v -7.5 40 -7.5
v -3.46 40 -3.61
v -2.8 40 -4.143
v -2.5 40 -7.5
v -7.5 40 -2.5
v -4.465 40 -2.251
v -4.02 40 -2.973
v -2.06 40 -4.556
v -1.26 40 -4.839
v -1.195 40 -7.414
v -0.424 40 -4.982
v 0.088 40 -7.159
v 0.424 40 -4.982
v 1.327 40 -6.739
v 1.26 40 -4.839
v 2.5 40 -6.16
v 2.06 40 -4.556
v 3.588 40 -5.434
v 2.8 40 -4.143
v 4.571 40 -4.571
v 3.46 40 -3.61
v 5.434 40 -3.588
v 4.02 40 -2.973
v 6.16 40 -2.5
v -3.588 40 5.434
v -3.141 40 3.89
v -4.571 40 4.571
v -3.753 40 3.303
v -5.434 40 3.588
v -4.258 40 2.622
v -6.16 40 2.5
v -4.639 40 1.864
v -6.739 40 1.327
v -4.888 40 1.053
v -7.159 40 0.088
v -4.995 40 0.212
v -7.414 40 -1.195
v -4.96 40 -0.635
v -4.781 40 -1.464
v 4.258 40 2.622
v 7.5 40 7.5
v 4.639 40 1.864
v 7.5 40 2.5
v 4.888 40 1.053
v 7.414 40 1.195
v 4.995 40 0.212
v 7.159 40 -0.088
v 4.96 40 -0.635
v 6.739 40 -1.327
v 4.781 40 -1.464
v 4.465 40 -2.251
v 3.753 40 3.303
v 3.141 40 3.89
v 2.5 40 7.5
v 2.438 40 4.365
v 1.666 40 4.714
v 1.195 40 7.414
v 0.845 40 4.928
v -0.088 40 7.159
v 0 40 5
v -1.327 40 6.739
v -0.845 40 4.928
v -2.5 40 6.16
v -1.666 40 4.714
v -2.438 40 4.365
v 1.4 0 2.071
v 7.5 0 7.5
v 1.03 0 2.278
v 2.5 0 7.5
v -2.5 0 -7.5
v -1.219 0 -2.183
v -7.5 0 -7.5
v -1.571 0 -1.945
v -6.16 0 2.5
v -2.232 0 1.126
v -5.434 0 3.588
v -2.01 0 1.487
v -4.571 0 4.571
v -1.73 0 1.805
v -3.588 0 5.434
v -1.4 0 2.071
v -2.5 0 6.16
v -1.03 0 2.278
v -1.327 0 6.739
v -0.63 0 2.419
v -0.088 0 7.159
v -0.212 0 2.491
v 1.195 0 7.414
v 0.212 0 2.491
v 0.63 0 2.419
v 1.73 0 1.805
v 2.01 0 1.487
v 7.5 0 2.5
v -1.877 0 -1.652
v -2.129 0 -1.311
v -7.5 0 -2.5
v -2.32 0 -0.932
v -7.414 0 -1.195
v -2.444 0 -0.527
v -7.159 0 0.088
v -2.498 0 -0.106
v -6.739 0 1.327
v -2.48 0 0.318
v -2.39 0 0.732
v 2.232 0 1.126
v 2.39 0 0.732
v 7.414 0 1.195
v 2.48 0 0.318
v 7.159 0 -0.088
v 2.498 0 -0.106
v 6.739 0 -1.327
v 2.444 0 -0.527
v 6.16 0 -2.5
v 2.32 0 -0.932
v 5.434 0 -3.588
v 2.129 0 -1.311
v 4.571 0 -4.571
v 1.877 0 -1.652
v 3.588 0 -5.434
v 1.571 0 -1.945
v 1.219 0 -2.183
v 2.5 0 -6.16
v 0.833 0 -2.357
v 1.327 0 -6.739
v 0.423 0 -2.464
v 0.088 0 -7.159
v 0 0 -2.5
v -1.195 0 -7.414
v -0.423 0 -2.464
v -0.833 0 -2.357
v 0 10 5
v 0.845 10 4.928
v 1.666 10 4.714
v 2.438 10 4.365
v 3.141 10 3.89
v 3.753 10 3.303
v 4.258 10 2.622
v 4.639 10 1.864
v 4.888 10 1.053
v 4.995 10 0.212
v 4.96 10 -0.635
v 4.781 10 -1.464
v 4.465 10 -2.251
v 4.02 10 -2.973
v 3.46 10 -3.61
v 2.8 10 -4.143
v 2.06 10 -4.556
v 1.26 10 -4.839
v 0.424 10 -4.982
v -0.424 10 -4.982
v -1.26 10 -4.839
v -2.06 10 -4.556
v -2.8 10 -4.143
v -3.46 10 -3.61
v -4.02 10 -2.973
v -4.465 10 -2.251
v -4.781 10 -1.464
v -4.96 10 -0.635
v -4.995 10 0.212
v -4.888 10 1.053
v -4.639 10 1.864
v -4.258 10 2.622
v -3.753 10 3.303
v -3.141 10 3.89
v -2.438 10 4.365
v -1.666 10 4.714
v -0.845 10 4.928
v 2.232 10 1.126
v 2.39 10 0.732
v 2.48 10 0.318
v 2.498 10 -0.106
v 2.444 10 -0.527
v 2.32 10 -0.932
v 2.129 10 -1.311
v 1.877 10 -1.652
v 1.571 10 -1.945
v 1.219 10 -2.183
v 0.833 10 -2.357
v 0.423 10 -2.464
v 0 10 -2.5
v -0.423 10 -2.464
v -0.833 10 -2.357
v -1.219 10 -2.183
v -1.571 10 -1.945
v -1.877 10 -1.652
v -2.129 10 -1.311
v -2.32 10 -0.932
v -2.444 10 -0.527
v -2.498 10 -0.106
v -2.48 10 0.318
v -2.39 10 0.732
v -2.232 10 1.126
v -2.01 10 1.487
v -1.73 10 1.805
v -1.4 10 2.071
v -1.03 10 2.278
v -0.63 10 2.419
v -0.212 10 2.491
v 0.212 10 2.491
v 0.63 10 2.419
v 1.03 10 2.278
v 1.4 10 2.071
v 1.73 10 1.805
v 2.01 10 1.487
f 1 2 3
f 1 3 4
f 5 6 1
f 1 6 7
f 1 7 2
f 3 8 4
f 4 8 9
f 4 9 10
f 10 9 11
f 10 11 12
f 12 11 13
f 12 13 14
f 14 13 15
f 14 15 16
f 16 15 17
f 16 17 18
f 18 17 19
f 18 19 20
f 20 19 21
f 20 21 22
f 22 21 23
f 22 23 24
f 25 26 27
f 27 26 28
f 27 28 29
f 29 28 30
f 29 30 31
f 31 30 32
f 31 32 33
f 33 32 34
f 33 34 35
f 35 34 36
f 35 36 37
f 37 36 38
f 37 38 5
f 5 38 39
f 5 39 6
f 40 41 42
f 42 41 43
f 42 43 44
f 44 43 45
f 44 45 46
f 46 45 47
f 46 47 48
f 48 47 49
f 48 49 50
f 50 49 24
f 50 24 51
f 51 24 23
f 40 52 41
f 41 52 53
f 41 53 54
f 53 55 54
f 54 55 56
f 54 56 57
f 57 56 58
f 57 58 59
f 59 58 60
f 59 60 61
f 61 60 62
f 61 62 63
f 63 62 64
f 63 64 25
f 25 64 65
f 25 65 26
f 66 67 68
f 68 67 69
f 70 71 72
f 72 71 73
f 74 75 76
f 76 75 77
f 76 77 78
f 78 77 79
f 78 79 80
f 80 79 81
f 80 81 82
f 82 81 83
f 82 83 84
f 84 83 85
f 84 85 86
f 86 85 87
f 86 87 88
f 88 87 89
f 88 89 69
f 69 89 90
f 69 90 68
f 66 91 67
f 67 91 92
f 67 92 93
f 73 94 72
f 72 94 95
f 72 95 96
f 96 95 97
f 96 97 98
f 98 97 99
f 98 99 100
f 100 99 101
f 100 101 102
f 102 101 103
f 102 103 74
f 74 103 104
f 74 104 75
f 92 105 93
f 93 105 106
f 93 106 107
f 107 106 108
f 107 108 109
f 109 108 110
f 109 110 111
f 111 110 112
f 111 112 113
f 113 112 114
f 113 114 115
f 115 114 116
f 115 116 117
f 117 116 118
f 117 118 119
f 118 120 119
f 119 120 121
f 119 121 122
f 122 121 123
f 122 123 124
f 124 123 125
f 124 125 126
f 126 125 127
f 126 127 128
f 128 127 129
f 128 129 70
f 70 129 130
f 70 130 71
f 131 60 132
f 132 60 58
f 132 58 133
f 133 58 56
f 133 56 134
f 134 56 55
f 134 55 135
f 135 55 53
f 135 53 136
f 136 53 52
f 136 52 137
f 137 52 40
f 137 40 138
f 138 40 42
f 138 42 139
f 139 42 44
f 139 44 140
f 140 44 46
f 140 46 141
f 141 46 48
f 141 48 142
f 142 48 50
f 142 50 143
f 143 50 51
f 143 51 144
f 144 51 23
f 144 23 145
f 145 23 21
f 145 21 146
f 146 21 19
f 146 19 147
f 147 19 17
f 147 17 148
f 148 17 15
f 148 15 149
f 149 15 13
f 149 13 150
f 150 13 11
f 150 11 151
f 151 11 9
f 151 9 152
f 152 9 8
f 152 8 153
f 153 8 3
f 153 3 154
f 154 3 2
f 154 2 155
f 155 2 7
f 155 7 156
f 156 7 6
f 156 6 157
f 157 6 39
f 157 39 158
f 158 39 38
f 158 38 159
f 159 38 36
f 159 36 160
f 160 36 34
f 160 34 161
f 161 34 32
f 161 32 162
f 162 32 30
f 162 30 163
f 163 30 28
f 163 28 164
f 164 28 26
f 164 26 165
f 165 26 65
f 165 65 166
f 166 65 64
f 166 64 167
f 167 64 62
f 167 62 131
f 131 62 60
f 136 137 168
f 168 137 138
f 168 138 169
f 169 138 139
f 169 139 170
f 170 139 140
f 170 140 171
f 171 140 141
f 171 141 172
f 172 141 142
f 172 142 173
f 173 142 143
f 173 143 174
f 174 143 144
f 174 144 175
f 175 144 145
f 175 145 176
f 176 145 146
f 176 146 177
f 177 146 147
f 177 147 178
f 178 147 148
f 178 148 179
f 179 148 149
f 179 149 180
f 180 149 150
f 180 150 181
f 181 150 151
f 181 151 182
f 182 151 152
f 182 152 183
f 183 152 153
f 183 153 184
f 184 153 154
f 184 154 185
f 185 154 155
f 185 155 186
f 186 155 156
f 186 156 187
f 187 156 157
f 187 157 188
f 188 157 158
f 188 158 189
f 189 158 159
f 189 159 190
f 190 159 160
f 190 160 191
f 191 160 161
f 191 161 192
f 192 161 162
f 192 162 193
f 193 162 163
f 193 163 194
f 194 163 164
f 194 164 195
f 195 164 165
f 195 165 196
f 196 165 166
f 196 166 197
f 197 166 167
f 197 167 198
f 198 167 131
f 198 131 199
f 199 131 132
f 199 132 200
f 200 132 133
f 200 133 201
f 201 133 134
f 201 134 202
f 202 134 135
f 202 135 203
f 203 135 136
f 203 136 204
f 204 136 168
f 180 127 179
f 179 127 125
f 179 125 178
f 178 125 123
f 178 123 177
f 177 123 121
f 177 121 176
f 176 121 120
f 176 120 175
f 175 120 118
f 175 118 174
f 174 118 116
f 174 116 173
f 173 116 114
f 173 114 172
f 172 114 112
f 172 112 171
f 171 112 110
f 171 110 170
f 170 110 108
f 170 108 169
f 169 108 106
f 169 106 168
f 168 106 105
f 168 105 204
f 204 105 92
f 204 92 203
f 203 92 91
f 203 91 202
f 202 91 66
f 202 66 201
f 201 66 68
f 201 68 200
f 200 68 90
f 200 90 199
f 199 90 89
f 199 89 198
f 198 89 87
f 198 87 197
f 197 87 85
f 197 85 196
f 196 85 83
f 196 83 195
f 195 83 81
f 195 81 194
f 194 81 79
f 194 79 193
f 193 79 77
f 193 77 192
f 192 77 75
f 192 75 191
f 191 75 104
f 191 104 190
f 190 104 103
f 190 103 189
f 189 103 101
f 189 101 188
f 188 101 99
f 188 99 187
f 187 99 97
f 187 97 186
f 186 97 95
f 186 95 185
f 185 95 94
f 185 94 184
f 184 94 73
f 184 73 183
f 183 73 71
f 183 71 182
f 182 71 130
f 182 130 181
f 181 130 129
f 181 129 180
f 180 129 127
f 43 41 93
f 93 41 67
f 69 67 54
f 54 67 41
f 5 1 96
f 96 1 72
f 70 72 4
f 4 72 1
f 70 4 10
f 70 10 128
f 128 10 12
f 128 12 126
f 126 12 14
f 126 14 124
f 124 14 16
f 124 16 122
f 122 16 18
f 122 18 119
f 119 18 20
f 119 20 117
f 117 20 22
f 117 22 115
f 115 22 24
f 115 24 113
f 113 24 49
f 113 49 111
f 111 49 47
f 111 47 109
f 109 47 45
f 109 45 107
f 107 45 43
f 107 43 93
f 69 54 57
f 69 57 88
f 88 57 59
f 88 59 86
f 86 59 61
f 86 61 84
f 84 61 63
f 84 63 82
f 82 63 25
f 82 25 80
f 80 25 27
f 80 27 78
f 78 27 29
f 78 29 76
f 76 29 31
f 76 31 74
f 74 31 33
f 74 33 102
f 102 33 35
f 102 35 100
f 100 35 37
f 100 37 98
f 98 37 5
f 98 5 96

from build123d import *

# Parameters (mm, degrees)
SKETCH_1_R            = 6
EXTRUDE_1_DEPTH       = 40
SKETCH_2_R            = 5
CUT_EXTRUDE_2_DEPTH   = 30
SKETCH_3_R            = 2.5
CUT_EXTRUDE_4_DEPTH   = 10
SKETCH_5_R            = 16
SKETCH_5_R_2          = 6
EXTRUDE_1_2_DEPTH     = 40
SKETCH_6_W            = 32
SKETCH_6_H            = 32
SKETCH_6_W_2          = 12
SKETCH_6_H_2          = 12
EXTRUDE_2_DEPTH       = 40
SKETCH_7_W            = 35
SKETCH_7_H            = 35
SKETCH_7_W_2          = 15
SKETCH_7_H_2          = 15
CUT_EXTRUDE_2_2_DEPTH = 46.956501172
FILLET_1_R            = 10


with BuildPart() as part:
    # 草圖1 → Extrude 1 (new body)
    with BuildSketch(Plane(origin=(0, 0, 0), x_dir=(1, 0, 0), z_dir=(0, 1, 0))):
        with Locations(Location((0, 0, 0), (0, 0, 270))):
            Circle(SKETCH_1_R)
    extrude(amount=EXTRUDE_1_DEPTH)

    # 草圖2 → Cut-Extrude 2 (cut)
    with BuildSketch(Plane(origin=(0, 40, 0), x_dir=(1, 0, 0), z_dir=(0, 1, 0))):
        with Locations(Location((0, 0, 0), (0, 0, 270))):
            Circle(SKETCH_2_R)
    extrude(amount=-CUT_EXTRUDE_2_DEPTH, mode=Mode.SUBTRACT)

    # 草圖3 → 除料-伸長4 (cut)
    with BuildSketch(Plane.XZ):
        with Locations(Location((0, 0, 0), (0, 0, 270))):
            Circle(SKETCH_3_R)
    extrude(amount=-CUT_EXTRUDE_4_DEPTH, mode=Mode.SUBTRACT)

    # 草圖5 → Extrude 1 2 (add)
    with BuildSketch(Plane(origin=(0, 0, 0), x_dir=(1, 0, 0), z_dir=(0, 1, 0))):
        Circle(SKETCH_5_R)
        Circle(SKETCH_5_R_2, mode=Mode.SUBTRACT)
    extrude(amount=EXTRUDE_1_2_DEPTH)

    # 草圖6 → 伸長-薄件2 (add)
    with BuildSketch(Plane(origin=(0, 40, 0), x_dir=(1, 0, 0), z_dir=(0, 1, 0))):
        Rectangle(SKETCH_6_W, SKETCH_6_H)
        Rectangle(SKETCH_6_W_2, SKETCH_6_H_2, mode=Mode.SUBTRACT)
    extrude(amount=-EXTRUDE_2_DEPTH)

    # 草圖7 → Cut-Extrude 2 2 (cut, through all)
    with BuildSketch(Plane(origin=(0, 40, 0), x_dir=(1, 0, 0), z_dir=(0, 1, 0))):
        Rectangle(SKETCH_7_W, SKETCH_7_H)
        Rectangle(SKETCH_7_W_2, SKETCH_7_H_2, mode=Mode.SUBTRACT)
    extrude(amount=-CUT_EXTRUDE_2_2_DEPTH, mode=Mode.SUBTRACT)

    # 圓角1
    fillet_1_edges = [part.edges().sort_by_distance(p)[0] for p in [
        (-7.5, 20, 7.5),
        (7.5, 20, -7.5),
    ]]
    fillet(fillet_1_edges, radius=FILLET_1_R)


solid = part.part
